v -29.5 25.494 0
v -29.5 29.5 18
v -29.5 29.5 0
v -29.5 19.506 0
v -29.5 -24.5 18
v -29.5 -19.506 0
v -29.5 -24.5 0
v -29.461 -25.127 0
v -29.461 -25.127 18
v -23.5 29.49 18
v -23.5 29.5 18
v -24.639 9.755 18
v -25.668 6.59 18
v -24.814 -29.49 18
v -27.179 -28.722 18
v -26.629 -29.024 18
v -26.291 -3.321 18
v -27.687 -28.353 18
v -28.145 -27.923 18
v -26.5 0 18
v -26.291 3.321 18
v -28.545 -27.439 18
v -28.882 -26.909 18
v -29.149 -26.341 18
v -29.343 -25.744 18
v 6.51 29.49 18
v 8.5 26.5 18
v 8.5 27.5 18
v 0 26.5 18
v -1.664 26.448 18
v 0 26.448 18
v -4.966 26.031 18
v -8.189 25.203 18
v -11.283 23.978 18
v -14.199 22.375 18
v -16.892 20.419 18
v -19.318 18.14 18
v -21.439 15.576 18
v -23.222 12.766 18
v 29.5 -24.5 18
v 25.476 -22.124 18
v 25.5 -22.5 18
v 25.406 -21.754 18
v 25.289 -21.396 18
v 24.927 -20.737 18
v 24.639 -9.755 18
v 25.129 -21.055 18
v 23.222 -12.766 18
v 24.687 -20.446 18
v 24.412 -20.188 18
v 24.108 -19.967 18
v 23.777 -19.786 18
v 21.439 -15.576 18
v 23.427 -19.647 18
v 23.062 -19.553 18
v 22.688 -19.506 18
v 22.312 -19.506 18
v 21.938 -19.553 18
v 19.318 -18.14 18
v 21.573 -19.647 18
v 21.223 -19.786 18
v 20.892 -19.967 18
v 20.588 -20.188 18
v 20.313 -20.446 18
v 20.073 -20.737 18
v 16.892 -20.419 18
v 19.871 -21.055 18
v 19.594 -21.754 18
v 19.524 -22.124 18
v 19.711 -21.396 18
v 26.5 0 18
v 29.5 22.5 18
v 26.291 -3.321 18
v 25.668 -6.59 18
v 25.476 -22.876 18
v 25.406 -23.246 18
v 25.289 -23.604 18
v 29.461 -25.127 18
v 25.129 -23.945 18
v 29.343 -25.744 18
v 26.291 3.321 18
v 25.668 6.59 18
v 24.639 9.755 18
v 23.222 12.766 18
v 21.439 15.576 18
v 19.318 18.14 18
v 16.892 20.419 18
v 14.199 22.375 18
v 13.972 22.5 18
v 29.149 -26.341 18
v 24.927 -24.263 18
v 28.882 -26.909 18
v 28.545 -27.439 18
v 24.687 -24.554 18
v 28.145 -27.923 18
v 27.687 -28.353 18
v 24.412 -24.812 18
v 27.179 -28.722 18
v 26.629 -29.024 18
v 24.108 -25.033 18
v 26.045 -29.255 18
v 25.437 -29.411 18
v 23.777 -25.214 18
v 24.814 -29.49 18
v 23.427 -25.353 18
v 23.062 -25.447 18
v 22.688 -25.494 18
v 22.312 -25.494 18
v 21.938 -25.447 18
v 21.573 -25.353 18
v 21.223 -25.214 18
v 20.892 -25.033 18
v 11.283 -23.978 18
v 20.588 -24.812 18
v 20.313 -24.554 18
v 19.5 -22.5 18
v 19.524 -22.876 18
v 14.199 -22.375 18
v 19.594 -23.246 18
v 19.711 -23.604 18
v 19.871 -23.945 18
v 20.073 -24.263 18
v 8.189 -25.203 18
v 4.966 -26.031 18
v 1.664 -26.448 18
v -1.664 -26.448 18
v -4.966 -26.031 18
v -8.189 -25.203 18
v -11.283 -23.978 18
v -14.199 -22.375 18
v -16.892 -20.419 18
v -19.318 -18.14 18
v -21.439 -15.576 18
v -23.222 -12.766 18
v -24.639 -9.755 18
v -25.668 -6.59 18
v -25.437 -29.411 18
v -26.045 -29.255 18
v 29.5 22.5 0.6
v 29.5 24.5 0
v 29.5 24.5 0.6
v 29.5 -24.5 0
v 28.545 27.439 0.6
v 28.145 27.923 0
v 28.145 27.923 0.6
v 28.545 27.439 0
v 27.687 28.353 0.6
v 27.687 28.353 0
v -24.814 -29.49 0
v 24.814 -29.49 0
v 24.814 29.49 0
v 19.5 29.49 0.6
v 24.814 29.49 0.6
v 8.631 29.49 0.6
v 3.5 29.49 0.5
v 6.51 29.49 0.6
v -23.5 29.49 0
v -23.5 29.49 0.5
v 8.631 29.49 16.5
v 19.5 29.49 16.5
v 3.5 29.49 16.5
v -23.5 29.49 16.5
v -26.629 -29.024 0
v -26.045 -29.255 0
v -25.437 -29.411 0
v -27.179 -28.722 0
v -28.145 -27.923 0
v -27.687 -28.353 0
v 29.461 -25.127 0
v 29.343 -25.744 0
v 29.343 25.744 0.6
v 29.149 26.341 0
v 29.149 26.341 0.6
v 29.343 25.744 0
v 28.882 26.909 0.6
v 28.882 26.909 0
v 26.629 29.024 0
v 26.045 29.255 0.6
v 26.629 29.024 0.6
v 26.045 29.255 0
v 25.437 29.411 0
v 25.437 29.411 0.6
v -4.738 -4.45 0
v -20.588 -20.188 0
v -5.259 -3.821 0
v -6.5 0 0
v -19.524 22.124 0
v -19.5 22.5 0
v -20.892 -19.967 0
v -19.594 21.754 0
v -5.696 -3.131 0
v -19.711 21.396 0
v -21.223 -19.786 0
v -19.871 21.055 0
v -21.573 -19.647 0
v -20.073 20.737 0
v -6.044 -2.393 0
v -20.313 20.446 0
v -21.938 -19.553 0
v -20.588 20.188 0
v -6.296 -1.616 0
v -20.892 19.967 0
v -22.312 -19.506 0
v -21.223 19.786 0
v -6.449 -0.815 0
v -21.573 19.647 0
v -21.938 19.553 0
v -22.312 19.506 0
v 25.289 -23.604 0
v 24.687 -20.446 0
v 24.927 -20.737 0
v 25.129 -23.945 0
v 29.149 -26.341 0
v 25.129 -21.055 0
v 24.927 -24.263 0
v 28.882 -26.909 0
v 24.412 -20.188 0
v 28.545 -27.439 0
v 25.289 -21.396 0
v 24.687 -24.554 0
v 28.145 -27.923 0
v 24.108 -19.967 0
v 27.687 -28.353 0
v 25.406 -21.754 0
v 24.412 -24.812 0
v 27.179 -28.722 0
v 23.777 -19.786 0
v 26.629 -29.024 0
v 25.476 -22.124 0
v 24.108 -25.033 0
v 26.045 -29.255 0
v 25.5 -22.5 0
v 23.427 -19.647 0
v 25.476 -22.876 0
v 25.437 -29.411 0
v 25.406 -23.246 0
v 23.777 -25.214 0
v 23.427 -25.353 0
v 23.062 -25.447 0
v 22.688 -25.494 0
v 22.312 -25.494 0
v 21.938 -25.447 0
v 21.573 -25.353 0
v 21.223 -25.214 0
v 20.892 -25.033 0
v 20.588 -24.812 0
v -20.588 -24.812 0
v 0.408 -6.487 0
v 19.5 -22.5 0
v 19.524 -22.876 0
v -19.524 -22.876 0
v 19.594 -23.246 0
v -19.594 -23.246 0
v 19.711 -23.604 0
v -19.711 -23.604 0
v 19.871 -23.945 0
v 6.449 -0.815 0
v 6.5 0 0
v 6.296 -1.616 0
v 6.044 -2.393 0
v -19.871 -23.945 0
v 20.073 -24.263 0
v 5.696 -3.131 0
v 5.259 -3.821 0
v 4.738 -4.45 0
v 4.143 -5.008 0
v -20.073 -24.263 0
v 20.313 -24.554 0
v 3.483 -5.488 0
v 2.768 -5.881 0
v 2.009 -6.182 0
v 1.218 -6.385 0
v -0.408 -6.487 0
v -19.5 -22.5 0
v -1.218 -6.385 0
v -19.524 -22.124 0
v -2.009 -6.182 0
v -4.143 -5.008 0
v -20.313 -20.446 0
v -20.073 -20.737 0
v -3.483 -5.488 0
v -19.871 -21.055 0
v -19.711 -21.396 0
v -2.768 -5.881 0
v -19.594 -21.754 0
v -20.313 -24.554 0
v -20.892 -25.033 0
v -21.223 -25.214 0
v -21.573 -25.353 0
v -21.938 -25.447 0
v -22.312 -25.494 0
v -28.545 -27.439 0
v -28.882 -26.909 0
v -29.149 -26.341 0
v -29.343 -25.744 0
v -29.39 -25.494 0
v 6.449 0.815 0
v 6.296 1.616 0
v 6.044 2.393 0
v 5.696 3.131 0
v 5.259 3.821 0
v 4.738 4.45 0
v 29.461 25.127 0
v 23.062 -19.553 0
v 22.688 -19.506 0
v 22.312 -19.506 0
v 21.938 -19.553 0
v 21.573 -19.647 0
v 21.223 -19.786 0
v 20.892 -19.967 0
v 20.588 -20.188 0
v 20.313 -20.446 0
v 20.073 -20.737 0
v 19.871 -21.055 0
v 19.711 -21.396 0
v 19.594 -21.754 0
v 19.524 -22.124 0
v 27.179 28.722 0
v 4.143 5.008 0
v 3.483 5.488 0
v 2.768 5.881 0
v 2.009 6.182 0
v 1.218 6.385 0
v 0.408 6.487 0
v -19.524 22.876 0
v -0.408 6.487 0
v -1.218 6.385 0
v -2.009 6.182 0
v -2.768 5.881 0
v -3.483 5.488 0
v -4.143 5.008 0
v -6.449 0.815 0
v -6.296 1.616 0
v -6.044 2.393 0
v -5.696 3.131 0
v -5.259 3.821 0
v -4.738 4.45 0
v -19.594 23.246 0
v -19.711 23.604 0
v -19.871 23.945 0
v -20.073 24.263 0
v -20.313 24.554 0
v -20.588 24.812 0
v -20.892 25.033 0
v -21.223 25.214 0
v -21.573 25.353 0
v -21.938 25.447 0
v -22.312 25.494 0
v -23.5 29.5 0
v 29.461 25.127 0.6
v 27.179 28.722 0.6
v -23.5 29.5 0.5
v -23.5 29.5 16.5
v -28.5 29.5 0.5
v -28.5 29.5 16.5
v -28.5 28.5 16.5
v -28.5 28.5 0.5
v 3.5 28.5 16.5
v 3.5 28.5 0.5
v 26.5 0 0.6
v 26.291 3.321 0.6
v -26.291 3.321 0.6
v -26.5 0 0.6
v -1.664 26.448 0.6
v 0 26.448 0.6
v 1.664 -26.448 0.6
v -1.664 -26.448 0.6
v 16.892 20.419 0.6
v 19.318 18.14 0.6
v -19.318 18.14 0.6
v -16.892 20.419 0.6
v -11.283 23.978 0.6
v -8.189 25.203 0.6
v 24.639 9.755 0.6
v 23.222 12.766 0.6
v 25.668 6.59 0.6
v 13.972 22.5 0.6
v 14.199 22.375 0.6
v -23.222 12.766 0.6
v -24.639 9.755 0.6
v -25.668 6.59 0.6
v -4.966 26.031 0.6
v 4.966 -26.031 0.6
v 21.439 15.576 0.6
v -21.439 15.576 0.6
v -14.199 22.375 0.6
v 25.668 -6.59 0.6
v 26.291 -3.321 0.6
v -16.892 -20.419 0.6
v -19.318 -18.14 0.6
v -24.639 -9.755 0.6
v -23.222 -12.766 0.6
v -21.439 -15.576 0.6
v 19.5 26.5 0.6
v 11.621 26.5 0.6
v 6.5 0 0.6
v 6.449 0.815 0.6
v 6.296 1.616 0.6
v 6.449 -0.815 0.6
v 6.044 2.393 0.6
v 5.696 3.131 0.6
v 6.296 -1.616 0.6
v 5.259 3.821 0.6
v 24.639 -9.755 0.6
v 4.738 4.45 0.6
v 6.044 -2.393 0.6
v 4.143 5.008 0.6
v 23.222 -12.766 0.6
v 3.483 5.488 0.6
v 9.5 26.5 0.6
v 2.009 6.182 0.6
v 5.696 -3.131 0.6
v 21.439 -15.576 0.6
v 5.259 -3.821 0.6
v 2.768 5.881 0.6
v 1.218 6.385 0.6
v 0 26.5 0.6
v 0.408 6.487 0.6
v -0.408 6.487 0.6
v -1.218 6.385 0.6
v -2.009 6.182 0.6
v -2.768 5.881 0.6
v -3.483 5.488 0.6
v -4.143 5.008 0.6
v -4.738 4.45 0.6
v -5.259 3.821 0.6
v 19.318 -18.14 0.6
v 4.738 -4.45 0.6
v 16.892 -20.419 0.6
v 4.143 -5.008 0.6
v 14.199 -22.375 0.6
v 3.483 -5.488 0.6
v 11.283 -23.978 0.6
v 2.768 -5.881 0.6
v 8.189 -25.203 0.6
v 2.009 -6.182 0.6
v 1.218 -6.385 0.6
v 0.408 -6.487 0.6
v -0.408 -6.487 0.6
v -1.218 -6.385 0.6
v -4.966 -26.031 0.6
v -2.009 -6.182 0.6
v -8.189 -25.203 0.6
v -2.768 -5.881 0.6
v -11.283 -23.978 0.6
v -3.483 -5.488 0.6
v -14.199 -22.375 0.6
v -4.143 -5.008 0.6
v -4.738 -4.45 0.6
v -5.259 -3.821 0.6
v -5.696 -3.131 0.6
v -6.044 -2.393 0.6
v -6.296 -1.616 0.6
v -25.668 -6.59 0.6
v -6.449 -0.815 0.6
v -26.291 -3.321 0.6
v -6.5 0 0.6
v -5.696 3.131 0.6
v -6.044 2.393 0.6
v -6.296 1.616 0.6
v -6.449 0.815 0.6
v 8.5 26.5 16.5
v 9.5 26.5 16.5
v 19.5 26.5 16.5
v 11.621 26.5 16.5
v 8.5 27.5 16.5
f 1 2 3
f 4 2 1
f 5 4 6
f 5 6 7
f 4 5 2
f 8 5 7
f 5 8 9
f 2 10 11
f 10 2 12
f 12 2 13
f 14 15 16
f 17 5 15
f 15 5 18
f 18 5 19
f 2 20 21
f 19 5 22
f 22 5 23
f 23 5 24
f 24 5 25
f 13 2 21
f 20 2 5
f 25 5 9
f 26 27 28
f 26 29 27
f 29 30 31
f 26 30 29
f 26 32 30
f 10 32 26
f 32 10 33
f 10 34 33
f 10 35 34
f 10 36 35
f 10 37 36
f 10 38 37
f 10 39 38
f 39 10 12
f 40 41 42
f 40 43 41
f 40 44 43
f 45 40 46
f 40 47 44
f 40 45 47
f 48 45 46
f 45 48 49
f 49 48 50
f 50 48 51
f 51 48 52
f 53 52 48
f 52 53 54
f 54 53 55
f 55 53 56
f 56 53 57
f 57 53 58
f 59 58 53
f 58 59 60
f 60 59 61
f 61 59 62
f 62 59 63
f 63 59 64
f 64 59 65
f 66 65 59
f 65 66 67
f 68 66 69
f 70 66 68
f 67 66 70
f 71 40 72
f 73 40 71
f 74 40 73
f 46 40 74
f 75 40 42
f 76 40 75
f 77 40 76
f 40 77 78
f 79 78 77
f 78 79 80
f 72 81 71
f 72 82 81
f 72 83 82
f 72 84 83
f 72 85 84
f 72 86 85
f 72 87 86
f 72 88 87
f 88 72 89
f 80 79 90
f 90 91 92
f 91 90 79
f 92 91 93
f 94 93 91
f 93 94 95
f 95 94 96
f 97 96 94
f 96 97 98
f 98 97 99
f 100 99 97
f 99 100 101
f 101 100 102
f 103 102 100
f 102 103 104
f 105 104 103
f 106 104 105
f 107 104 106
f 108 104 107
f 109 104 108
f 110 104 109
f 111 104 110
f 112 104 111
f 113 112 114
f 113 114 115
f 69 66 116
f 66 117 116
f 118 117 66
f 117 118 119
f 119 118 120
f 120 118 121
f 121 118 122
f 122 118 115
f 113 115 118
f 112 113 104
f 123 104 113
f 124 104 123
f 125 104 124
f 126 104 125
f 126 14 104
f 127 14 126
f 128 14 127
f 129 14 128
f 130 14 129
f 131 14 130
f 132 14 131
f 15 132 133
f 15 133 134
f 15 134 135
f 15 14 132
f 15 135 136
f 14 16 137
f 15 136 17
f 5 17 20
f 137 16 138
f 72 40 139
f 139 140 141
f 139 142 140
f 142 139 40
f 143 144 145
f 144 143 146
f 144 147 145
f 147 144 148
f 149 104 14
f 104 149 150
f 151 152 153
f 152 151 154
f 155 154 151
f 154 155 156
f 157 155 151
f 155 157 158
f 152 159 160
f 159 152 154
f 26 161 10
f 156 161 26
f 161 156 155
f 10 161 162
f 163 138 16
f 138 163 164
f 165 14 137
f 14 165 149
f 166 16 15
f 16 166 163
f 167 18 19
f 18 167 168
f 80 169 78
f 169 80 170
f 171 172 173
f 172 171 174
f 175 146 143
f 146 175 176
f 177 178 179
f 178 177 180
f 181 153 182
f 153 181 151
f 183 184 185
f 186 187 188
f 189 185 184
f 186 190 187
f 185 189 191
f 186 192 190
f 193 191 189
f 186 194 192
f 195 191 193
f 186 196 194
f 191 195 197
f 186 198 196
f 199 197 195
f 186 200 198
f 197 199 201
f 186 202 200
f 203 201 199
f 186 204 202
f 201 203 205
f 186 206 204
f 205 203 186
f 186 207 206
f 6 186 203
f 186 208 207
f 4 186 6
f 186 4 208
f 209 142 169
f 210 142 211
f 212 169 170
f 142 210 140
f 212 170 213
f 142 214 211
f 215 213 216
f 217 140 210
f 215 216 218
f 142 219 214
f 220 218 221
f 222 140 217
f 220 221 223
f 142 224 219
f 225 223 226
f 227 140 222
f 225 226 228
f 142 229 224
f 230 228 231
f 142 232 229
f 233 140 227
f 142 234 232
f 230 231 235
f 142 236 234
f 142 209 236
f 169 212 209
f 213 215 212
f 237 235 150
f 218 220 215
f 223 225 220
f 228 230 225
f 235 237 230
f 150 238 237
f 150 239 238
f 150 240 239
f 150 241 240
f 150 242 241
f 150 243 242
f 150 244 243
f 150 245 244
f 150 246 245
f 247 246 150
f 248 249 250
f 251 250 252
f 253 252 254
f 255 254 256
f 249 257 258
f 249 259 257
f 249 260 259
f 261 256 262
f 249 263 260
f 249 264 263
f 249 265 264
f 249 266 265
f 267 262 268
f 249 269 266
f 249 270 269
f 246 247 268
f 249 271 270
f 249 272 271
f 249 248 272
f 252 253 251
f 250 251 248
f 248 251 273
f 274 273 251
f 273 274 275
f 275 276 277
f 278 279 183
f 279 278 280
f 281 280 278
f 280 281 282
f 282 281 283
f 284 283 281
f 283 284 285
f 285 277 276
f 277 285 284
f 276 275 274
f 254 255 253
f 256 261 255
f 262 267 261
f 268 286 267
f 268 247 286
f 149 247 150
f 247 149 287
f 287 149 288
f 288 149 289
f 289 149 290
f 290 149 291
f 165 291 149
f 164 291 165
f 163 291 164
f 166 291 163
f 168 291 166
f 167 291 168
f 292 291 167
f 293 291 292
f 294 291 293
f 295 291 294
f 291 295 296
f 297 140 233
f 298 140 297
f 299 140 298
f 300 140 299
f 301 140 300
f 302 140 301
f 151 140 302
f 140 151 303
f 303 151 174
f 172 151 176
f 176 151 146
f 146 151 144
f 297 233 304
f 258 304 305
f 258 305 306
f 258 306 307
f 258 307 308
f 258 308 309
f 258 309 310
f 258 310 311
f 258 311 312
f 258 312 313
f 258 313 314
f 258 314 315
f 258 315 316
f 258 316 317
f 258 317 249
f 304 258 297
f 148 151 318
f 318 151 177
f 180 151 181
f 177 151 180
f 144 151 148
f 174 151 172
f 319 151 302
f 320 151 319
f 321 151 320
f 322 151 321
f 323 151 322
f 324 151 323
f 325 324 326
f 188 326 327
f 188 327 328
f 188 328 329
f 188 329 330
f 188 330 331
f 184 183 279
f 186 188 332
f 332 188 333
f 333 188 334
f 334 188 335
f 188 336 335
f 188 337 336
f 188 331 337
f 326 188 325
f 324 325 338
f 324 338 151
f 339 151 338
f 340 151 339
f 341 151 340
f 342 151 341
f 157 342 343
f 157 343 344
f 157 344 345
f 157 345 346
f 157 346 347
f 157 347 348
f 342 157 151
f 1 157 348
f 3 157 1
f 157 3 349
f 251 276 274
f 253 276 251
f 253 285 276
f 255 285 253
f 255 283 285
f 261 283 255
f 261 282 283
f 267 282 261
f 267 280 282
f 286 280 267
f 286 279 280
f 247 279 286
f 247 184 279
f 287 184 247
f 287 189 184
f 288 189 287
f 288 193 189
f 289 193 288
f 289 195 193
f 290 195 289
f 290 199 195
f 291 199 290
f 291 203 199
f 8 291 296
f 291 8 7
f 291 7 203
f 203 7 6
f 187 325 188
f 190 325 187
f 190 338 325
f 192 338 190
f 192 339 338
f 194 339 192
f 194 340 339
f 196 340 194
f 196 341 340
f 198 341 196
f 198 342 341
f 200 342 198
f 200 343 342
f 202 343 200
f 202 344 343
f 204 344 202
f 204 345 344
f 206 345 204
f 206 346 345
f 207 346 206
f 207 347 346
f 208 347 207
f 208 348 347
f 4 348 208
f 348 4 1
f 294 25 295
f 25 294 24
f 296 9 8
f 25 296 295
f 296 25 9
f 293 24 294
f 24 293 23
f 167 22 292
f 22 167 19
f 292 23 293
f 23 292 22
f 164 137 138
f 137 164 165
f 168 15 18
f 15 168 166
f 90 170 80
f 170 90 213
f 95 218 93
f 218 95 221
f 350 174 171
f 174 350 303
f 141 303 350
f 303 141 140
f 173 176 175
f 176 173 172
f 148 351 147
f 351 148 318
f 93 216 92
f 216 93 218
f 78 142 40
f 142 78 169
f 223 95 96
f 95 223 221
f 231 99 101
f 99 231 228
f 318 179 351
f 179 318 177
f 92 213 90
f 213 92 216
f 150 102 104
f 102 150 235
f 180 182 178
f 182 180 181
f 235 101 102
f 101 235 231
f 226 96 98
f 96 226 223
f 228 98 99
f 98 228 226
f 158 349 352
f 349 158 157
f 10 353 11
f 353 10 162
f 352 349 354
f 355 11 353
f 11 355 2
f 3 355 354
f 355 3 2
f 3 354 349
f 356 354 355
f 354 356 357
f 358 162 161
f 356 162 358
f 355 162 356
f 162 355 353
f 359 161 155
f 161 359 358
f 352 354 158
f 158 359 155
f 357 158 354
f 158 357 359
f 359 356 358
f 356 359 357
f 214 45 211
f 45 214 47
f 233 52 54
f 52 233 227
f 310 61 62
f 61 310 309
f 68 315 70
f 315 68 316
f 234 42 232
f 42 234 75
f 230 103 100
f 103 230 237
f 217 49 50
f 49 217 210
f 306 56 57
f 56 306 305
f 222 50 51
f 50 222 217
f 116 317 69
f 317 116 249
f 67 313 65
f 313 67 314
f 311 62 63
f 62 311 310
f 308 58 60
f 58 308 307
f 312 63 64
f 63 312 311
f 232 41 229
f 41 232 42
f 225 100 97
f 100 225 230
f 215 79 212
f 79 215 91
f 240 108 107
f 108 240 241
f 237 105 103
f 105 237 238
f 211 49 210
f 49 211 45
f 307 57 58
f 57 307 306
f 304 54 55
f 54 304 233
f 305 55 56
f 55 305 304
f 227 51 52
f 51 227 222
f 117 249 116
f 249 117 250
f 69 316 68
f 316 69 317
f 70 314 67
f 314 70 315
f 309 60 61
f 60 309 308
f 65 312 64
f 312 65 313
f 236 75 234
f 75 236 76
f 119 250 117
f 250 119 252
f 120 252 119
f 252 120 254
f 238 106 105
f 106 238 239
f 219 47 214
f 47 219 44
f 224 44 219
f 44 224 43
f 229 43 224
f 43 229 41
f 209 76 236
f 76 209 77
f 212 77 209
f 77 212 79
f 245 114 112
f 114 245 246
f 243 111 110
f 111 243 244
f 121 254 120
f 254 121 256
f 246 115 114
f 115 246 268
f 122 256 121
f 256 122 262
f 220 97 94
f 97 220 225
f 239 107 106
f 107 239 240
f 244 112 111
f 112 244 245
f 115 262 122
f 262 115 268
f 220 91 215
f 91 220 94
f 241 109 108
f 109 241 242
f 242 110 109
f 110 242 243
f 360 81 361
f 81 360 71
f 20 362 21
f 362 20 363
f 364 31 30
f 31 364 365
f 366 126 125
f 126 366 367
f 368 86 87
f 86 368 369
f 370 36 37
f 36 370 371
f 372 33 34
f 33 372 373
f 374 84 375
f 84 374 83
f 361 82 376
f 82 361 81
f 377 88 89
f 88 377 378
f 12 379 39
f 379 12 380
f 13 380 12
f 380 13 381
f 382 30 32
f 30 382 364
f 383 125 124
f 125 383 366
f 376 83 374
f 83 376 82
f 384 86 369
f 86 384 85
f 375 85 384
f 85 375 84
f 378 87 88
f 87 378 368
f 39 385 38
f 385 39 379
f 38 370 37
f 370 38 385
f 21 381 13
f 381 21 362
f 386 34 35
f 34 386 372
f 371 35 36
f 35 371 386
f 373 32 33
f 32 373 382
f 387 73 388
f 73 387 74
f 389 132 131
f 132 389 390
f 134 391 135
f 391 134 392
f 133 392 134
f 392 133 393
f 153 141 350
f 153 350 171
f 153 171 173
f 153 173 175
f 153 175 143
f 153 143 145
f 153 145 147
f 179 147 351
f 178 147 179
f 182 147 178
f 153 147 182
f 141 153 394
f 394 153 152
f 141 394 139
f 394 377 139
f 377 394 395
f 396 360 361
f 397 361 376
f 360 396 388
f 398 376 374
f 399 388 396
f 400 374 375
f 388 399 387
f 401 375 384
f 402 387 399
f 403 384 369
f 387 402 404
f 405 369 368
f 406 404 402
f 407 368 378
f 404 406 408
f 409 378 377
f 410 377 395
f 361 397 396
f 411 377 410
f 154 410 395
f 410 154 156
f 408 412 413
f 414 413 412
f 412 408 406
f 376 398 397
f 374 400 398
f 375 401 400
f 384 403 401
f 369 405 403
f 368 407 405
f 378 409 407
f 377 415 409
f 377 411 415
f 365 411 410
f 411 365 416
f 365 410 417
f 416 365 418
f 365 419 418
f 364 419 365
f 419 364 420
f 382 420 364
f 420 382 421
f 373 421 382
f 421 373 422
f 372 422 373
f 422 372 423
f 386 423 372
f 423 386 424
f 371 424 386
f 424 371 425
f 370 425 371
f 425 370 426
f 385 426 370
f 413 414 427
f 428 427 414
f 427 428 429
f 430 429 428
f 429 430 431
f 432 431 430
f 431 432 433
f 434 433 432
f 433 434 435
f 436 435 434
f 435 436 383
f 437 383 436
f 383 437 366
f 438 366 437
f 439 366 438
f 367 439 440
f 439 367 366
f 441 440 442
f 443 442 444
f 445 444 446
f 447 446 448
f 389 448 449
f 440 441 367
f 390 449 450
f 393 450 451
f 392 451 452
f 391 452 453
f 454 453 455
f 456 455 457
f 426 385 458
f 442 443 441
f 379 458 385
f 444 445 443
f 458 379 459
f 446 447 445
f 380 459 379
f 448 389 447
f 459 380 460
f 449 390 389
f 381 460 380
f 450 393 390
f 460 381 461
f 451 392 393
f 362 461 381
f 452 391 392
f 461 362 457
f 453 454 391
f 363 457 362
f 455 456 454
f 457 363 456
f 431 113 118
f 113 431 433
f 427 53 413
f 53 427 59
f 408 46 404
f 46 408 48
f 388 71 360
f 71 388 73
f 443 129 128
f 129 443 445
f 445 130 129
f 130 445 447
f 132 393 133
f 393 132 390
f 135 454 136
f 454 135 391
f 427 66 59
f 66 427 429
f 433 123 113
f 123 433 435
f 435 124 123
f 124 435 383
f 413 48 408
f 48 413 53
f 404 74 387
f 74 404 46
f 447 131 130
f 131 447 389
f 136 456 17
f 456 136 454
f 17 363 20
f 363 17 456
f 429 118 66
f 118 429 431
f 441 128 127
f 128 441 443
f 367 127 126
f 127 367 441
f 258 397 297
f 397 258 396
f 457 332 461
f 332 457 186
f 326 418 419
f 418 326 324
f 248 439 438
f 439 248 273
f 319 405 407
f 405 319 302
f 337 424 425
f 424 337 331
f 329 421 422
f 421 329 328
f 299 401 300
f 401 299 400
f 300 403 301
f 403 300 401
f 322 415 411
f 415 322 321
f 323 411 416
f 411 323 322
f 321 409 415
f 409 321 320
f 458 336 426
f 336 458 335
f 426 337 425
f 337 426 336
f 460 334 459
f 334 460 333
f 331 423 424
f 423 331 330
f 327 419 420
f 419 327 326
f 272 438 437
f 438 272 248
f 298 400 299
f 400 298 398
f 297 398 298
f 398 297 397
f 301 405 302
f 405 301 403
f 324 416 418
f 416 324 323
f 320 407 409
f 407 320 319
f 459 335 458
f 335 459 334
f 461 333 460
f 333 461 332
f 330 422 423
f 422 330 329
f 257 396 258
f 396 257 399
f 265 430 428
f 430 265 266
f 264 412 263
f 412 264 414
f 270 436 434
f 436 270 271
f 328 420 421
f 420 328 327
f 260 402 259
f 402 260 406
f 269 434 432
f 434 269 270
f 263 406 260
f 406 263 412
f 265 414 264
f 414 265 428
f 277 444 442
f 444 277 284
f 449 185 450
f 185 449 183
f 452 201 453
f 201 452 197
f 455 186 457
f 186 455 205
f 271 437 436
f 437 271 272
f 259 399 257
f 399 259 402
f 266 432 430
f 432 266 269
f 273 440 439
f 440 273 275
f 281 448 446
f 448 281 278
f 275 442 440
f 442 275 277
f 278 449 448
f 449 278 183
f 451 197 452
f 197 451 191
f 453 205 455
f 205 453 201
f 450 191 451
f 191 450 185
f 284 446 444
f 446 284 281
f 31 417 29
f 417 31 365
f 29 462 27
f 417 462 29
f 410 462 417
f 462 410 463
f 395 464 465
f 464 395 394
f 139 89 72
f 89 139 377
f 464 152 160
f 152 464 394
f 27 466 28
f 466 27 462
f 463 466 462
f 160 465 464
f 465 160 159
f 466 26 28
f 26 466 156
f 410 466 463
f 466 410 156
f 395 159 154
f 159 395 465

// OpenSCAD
$fn = 50;


difference() {
	union() {
		hull() {
			translate(v = [-24.5000000000, 24.5000000000, 0]) {
				cylinder(h = 18, r = 5);
			}
			translate(v = [24.5000000000, 24.5000000000, 0]) {
				cylinder(h = 18, r = 5);
			}
			translate(v = [-24.5000000000, -24.5000000000, 0]) {
				cylinder(h = 18, r = 5);
			}
			translate(v = [24.5000000000, -24.5000000000, 0]) {
				cylinder(h = 18, r = 5);
			}
		}
		translate(v = [-29.5000000000, 23.5000000000, 0]) {
			cube(size = [6, 6, 18]);
		}
	}
	union() {
		translate(v = [-30.0000000000, -22.5000000000, -250.0000000000]) {
			rotate(a = [0, 0, 0]) {
				difference() {
					union() {
						hull() {
							translate(v = [7.5000000000, 0, 0]) {
								cylinder(h = 250, r = 3.0000000000, r1 = 3.0000000000, r2 = 3.0000000000);
							}
							translate(v = [-7.5000000000, 0, 0]) {
								cylinder(h = 250, r = 3.0000000000, r1 = 3.0000000000, r2 = 3.0000000000);
							}
						}
					}
					union();
				}
			}
		}
		translate(v = [-30.0000000000, 22.5000000000, -250.0000000000]) {
			rotate(a = [0, 0, 0]) {
				difference() {
					union() {
						hull() {
							translate(v = [7.5000000000, 0, 0]) {
								cylinder(h = 250, r = 3.0000000000, r1 = 3.0000000000, r2 = 3.0000000000);
							}
							translate(v = [-7.5000000000, 0, 0]) {
								cylinder(h = 250, r = 3.0000000000, r1 = 3.0000000000, r2 = 3.0000000000);
							}
						}
					}
					union();
				}
			}
		}
		translate(v = [-28.5000000000, 28.5000000000, 0.5000000000]) {
			cube(size = [32, 1, 16]);
		}
		translate(v = [22.5000000000, -22.5000000000, -50.0000000000]) {
			cylinder(h = 100, r = 3.0000000000);
		}
		translate(v = [0, 0, 0.6000000000]) {
			cylinder(h = 20.4000000000, r = 26.5000000000);
		}
		translate(v = [0, 0, -9.0000000000]) {
			cylinder(h = 18, r = 6.5000000000);
		}
		translate(v = [0.0000000000, 22.5000000000, 0.6000000000]) {
			cube(size = [29.5000000000, 4, 20.4000000000]);
		}
		translate(v = [19.5000000000, 22.5000000000, 0.6000000000]) {
			cube(size = [10, 7, 20.4000000000]);
		}
		translate(v = [8.5000000000, 22.5000000000, 16.5000000000]) {
			cube(size = [21, 7, 1.5000000000]);
		}
		translate(v = [5.7500000000, 30.2500000000, 0.6000000000]) {
			rotate(a = [0, 0, -45]) {
				cube(size = [7.5000000000, 1.5000000000, 20.4000000000]);
			}
		}
		translate(v = [5.0610000000, 20.5000000000, 0.6000000000]) {
			cube(size = [7.5000000000, 2, 17.4000000000]);
		}
	}
}
